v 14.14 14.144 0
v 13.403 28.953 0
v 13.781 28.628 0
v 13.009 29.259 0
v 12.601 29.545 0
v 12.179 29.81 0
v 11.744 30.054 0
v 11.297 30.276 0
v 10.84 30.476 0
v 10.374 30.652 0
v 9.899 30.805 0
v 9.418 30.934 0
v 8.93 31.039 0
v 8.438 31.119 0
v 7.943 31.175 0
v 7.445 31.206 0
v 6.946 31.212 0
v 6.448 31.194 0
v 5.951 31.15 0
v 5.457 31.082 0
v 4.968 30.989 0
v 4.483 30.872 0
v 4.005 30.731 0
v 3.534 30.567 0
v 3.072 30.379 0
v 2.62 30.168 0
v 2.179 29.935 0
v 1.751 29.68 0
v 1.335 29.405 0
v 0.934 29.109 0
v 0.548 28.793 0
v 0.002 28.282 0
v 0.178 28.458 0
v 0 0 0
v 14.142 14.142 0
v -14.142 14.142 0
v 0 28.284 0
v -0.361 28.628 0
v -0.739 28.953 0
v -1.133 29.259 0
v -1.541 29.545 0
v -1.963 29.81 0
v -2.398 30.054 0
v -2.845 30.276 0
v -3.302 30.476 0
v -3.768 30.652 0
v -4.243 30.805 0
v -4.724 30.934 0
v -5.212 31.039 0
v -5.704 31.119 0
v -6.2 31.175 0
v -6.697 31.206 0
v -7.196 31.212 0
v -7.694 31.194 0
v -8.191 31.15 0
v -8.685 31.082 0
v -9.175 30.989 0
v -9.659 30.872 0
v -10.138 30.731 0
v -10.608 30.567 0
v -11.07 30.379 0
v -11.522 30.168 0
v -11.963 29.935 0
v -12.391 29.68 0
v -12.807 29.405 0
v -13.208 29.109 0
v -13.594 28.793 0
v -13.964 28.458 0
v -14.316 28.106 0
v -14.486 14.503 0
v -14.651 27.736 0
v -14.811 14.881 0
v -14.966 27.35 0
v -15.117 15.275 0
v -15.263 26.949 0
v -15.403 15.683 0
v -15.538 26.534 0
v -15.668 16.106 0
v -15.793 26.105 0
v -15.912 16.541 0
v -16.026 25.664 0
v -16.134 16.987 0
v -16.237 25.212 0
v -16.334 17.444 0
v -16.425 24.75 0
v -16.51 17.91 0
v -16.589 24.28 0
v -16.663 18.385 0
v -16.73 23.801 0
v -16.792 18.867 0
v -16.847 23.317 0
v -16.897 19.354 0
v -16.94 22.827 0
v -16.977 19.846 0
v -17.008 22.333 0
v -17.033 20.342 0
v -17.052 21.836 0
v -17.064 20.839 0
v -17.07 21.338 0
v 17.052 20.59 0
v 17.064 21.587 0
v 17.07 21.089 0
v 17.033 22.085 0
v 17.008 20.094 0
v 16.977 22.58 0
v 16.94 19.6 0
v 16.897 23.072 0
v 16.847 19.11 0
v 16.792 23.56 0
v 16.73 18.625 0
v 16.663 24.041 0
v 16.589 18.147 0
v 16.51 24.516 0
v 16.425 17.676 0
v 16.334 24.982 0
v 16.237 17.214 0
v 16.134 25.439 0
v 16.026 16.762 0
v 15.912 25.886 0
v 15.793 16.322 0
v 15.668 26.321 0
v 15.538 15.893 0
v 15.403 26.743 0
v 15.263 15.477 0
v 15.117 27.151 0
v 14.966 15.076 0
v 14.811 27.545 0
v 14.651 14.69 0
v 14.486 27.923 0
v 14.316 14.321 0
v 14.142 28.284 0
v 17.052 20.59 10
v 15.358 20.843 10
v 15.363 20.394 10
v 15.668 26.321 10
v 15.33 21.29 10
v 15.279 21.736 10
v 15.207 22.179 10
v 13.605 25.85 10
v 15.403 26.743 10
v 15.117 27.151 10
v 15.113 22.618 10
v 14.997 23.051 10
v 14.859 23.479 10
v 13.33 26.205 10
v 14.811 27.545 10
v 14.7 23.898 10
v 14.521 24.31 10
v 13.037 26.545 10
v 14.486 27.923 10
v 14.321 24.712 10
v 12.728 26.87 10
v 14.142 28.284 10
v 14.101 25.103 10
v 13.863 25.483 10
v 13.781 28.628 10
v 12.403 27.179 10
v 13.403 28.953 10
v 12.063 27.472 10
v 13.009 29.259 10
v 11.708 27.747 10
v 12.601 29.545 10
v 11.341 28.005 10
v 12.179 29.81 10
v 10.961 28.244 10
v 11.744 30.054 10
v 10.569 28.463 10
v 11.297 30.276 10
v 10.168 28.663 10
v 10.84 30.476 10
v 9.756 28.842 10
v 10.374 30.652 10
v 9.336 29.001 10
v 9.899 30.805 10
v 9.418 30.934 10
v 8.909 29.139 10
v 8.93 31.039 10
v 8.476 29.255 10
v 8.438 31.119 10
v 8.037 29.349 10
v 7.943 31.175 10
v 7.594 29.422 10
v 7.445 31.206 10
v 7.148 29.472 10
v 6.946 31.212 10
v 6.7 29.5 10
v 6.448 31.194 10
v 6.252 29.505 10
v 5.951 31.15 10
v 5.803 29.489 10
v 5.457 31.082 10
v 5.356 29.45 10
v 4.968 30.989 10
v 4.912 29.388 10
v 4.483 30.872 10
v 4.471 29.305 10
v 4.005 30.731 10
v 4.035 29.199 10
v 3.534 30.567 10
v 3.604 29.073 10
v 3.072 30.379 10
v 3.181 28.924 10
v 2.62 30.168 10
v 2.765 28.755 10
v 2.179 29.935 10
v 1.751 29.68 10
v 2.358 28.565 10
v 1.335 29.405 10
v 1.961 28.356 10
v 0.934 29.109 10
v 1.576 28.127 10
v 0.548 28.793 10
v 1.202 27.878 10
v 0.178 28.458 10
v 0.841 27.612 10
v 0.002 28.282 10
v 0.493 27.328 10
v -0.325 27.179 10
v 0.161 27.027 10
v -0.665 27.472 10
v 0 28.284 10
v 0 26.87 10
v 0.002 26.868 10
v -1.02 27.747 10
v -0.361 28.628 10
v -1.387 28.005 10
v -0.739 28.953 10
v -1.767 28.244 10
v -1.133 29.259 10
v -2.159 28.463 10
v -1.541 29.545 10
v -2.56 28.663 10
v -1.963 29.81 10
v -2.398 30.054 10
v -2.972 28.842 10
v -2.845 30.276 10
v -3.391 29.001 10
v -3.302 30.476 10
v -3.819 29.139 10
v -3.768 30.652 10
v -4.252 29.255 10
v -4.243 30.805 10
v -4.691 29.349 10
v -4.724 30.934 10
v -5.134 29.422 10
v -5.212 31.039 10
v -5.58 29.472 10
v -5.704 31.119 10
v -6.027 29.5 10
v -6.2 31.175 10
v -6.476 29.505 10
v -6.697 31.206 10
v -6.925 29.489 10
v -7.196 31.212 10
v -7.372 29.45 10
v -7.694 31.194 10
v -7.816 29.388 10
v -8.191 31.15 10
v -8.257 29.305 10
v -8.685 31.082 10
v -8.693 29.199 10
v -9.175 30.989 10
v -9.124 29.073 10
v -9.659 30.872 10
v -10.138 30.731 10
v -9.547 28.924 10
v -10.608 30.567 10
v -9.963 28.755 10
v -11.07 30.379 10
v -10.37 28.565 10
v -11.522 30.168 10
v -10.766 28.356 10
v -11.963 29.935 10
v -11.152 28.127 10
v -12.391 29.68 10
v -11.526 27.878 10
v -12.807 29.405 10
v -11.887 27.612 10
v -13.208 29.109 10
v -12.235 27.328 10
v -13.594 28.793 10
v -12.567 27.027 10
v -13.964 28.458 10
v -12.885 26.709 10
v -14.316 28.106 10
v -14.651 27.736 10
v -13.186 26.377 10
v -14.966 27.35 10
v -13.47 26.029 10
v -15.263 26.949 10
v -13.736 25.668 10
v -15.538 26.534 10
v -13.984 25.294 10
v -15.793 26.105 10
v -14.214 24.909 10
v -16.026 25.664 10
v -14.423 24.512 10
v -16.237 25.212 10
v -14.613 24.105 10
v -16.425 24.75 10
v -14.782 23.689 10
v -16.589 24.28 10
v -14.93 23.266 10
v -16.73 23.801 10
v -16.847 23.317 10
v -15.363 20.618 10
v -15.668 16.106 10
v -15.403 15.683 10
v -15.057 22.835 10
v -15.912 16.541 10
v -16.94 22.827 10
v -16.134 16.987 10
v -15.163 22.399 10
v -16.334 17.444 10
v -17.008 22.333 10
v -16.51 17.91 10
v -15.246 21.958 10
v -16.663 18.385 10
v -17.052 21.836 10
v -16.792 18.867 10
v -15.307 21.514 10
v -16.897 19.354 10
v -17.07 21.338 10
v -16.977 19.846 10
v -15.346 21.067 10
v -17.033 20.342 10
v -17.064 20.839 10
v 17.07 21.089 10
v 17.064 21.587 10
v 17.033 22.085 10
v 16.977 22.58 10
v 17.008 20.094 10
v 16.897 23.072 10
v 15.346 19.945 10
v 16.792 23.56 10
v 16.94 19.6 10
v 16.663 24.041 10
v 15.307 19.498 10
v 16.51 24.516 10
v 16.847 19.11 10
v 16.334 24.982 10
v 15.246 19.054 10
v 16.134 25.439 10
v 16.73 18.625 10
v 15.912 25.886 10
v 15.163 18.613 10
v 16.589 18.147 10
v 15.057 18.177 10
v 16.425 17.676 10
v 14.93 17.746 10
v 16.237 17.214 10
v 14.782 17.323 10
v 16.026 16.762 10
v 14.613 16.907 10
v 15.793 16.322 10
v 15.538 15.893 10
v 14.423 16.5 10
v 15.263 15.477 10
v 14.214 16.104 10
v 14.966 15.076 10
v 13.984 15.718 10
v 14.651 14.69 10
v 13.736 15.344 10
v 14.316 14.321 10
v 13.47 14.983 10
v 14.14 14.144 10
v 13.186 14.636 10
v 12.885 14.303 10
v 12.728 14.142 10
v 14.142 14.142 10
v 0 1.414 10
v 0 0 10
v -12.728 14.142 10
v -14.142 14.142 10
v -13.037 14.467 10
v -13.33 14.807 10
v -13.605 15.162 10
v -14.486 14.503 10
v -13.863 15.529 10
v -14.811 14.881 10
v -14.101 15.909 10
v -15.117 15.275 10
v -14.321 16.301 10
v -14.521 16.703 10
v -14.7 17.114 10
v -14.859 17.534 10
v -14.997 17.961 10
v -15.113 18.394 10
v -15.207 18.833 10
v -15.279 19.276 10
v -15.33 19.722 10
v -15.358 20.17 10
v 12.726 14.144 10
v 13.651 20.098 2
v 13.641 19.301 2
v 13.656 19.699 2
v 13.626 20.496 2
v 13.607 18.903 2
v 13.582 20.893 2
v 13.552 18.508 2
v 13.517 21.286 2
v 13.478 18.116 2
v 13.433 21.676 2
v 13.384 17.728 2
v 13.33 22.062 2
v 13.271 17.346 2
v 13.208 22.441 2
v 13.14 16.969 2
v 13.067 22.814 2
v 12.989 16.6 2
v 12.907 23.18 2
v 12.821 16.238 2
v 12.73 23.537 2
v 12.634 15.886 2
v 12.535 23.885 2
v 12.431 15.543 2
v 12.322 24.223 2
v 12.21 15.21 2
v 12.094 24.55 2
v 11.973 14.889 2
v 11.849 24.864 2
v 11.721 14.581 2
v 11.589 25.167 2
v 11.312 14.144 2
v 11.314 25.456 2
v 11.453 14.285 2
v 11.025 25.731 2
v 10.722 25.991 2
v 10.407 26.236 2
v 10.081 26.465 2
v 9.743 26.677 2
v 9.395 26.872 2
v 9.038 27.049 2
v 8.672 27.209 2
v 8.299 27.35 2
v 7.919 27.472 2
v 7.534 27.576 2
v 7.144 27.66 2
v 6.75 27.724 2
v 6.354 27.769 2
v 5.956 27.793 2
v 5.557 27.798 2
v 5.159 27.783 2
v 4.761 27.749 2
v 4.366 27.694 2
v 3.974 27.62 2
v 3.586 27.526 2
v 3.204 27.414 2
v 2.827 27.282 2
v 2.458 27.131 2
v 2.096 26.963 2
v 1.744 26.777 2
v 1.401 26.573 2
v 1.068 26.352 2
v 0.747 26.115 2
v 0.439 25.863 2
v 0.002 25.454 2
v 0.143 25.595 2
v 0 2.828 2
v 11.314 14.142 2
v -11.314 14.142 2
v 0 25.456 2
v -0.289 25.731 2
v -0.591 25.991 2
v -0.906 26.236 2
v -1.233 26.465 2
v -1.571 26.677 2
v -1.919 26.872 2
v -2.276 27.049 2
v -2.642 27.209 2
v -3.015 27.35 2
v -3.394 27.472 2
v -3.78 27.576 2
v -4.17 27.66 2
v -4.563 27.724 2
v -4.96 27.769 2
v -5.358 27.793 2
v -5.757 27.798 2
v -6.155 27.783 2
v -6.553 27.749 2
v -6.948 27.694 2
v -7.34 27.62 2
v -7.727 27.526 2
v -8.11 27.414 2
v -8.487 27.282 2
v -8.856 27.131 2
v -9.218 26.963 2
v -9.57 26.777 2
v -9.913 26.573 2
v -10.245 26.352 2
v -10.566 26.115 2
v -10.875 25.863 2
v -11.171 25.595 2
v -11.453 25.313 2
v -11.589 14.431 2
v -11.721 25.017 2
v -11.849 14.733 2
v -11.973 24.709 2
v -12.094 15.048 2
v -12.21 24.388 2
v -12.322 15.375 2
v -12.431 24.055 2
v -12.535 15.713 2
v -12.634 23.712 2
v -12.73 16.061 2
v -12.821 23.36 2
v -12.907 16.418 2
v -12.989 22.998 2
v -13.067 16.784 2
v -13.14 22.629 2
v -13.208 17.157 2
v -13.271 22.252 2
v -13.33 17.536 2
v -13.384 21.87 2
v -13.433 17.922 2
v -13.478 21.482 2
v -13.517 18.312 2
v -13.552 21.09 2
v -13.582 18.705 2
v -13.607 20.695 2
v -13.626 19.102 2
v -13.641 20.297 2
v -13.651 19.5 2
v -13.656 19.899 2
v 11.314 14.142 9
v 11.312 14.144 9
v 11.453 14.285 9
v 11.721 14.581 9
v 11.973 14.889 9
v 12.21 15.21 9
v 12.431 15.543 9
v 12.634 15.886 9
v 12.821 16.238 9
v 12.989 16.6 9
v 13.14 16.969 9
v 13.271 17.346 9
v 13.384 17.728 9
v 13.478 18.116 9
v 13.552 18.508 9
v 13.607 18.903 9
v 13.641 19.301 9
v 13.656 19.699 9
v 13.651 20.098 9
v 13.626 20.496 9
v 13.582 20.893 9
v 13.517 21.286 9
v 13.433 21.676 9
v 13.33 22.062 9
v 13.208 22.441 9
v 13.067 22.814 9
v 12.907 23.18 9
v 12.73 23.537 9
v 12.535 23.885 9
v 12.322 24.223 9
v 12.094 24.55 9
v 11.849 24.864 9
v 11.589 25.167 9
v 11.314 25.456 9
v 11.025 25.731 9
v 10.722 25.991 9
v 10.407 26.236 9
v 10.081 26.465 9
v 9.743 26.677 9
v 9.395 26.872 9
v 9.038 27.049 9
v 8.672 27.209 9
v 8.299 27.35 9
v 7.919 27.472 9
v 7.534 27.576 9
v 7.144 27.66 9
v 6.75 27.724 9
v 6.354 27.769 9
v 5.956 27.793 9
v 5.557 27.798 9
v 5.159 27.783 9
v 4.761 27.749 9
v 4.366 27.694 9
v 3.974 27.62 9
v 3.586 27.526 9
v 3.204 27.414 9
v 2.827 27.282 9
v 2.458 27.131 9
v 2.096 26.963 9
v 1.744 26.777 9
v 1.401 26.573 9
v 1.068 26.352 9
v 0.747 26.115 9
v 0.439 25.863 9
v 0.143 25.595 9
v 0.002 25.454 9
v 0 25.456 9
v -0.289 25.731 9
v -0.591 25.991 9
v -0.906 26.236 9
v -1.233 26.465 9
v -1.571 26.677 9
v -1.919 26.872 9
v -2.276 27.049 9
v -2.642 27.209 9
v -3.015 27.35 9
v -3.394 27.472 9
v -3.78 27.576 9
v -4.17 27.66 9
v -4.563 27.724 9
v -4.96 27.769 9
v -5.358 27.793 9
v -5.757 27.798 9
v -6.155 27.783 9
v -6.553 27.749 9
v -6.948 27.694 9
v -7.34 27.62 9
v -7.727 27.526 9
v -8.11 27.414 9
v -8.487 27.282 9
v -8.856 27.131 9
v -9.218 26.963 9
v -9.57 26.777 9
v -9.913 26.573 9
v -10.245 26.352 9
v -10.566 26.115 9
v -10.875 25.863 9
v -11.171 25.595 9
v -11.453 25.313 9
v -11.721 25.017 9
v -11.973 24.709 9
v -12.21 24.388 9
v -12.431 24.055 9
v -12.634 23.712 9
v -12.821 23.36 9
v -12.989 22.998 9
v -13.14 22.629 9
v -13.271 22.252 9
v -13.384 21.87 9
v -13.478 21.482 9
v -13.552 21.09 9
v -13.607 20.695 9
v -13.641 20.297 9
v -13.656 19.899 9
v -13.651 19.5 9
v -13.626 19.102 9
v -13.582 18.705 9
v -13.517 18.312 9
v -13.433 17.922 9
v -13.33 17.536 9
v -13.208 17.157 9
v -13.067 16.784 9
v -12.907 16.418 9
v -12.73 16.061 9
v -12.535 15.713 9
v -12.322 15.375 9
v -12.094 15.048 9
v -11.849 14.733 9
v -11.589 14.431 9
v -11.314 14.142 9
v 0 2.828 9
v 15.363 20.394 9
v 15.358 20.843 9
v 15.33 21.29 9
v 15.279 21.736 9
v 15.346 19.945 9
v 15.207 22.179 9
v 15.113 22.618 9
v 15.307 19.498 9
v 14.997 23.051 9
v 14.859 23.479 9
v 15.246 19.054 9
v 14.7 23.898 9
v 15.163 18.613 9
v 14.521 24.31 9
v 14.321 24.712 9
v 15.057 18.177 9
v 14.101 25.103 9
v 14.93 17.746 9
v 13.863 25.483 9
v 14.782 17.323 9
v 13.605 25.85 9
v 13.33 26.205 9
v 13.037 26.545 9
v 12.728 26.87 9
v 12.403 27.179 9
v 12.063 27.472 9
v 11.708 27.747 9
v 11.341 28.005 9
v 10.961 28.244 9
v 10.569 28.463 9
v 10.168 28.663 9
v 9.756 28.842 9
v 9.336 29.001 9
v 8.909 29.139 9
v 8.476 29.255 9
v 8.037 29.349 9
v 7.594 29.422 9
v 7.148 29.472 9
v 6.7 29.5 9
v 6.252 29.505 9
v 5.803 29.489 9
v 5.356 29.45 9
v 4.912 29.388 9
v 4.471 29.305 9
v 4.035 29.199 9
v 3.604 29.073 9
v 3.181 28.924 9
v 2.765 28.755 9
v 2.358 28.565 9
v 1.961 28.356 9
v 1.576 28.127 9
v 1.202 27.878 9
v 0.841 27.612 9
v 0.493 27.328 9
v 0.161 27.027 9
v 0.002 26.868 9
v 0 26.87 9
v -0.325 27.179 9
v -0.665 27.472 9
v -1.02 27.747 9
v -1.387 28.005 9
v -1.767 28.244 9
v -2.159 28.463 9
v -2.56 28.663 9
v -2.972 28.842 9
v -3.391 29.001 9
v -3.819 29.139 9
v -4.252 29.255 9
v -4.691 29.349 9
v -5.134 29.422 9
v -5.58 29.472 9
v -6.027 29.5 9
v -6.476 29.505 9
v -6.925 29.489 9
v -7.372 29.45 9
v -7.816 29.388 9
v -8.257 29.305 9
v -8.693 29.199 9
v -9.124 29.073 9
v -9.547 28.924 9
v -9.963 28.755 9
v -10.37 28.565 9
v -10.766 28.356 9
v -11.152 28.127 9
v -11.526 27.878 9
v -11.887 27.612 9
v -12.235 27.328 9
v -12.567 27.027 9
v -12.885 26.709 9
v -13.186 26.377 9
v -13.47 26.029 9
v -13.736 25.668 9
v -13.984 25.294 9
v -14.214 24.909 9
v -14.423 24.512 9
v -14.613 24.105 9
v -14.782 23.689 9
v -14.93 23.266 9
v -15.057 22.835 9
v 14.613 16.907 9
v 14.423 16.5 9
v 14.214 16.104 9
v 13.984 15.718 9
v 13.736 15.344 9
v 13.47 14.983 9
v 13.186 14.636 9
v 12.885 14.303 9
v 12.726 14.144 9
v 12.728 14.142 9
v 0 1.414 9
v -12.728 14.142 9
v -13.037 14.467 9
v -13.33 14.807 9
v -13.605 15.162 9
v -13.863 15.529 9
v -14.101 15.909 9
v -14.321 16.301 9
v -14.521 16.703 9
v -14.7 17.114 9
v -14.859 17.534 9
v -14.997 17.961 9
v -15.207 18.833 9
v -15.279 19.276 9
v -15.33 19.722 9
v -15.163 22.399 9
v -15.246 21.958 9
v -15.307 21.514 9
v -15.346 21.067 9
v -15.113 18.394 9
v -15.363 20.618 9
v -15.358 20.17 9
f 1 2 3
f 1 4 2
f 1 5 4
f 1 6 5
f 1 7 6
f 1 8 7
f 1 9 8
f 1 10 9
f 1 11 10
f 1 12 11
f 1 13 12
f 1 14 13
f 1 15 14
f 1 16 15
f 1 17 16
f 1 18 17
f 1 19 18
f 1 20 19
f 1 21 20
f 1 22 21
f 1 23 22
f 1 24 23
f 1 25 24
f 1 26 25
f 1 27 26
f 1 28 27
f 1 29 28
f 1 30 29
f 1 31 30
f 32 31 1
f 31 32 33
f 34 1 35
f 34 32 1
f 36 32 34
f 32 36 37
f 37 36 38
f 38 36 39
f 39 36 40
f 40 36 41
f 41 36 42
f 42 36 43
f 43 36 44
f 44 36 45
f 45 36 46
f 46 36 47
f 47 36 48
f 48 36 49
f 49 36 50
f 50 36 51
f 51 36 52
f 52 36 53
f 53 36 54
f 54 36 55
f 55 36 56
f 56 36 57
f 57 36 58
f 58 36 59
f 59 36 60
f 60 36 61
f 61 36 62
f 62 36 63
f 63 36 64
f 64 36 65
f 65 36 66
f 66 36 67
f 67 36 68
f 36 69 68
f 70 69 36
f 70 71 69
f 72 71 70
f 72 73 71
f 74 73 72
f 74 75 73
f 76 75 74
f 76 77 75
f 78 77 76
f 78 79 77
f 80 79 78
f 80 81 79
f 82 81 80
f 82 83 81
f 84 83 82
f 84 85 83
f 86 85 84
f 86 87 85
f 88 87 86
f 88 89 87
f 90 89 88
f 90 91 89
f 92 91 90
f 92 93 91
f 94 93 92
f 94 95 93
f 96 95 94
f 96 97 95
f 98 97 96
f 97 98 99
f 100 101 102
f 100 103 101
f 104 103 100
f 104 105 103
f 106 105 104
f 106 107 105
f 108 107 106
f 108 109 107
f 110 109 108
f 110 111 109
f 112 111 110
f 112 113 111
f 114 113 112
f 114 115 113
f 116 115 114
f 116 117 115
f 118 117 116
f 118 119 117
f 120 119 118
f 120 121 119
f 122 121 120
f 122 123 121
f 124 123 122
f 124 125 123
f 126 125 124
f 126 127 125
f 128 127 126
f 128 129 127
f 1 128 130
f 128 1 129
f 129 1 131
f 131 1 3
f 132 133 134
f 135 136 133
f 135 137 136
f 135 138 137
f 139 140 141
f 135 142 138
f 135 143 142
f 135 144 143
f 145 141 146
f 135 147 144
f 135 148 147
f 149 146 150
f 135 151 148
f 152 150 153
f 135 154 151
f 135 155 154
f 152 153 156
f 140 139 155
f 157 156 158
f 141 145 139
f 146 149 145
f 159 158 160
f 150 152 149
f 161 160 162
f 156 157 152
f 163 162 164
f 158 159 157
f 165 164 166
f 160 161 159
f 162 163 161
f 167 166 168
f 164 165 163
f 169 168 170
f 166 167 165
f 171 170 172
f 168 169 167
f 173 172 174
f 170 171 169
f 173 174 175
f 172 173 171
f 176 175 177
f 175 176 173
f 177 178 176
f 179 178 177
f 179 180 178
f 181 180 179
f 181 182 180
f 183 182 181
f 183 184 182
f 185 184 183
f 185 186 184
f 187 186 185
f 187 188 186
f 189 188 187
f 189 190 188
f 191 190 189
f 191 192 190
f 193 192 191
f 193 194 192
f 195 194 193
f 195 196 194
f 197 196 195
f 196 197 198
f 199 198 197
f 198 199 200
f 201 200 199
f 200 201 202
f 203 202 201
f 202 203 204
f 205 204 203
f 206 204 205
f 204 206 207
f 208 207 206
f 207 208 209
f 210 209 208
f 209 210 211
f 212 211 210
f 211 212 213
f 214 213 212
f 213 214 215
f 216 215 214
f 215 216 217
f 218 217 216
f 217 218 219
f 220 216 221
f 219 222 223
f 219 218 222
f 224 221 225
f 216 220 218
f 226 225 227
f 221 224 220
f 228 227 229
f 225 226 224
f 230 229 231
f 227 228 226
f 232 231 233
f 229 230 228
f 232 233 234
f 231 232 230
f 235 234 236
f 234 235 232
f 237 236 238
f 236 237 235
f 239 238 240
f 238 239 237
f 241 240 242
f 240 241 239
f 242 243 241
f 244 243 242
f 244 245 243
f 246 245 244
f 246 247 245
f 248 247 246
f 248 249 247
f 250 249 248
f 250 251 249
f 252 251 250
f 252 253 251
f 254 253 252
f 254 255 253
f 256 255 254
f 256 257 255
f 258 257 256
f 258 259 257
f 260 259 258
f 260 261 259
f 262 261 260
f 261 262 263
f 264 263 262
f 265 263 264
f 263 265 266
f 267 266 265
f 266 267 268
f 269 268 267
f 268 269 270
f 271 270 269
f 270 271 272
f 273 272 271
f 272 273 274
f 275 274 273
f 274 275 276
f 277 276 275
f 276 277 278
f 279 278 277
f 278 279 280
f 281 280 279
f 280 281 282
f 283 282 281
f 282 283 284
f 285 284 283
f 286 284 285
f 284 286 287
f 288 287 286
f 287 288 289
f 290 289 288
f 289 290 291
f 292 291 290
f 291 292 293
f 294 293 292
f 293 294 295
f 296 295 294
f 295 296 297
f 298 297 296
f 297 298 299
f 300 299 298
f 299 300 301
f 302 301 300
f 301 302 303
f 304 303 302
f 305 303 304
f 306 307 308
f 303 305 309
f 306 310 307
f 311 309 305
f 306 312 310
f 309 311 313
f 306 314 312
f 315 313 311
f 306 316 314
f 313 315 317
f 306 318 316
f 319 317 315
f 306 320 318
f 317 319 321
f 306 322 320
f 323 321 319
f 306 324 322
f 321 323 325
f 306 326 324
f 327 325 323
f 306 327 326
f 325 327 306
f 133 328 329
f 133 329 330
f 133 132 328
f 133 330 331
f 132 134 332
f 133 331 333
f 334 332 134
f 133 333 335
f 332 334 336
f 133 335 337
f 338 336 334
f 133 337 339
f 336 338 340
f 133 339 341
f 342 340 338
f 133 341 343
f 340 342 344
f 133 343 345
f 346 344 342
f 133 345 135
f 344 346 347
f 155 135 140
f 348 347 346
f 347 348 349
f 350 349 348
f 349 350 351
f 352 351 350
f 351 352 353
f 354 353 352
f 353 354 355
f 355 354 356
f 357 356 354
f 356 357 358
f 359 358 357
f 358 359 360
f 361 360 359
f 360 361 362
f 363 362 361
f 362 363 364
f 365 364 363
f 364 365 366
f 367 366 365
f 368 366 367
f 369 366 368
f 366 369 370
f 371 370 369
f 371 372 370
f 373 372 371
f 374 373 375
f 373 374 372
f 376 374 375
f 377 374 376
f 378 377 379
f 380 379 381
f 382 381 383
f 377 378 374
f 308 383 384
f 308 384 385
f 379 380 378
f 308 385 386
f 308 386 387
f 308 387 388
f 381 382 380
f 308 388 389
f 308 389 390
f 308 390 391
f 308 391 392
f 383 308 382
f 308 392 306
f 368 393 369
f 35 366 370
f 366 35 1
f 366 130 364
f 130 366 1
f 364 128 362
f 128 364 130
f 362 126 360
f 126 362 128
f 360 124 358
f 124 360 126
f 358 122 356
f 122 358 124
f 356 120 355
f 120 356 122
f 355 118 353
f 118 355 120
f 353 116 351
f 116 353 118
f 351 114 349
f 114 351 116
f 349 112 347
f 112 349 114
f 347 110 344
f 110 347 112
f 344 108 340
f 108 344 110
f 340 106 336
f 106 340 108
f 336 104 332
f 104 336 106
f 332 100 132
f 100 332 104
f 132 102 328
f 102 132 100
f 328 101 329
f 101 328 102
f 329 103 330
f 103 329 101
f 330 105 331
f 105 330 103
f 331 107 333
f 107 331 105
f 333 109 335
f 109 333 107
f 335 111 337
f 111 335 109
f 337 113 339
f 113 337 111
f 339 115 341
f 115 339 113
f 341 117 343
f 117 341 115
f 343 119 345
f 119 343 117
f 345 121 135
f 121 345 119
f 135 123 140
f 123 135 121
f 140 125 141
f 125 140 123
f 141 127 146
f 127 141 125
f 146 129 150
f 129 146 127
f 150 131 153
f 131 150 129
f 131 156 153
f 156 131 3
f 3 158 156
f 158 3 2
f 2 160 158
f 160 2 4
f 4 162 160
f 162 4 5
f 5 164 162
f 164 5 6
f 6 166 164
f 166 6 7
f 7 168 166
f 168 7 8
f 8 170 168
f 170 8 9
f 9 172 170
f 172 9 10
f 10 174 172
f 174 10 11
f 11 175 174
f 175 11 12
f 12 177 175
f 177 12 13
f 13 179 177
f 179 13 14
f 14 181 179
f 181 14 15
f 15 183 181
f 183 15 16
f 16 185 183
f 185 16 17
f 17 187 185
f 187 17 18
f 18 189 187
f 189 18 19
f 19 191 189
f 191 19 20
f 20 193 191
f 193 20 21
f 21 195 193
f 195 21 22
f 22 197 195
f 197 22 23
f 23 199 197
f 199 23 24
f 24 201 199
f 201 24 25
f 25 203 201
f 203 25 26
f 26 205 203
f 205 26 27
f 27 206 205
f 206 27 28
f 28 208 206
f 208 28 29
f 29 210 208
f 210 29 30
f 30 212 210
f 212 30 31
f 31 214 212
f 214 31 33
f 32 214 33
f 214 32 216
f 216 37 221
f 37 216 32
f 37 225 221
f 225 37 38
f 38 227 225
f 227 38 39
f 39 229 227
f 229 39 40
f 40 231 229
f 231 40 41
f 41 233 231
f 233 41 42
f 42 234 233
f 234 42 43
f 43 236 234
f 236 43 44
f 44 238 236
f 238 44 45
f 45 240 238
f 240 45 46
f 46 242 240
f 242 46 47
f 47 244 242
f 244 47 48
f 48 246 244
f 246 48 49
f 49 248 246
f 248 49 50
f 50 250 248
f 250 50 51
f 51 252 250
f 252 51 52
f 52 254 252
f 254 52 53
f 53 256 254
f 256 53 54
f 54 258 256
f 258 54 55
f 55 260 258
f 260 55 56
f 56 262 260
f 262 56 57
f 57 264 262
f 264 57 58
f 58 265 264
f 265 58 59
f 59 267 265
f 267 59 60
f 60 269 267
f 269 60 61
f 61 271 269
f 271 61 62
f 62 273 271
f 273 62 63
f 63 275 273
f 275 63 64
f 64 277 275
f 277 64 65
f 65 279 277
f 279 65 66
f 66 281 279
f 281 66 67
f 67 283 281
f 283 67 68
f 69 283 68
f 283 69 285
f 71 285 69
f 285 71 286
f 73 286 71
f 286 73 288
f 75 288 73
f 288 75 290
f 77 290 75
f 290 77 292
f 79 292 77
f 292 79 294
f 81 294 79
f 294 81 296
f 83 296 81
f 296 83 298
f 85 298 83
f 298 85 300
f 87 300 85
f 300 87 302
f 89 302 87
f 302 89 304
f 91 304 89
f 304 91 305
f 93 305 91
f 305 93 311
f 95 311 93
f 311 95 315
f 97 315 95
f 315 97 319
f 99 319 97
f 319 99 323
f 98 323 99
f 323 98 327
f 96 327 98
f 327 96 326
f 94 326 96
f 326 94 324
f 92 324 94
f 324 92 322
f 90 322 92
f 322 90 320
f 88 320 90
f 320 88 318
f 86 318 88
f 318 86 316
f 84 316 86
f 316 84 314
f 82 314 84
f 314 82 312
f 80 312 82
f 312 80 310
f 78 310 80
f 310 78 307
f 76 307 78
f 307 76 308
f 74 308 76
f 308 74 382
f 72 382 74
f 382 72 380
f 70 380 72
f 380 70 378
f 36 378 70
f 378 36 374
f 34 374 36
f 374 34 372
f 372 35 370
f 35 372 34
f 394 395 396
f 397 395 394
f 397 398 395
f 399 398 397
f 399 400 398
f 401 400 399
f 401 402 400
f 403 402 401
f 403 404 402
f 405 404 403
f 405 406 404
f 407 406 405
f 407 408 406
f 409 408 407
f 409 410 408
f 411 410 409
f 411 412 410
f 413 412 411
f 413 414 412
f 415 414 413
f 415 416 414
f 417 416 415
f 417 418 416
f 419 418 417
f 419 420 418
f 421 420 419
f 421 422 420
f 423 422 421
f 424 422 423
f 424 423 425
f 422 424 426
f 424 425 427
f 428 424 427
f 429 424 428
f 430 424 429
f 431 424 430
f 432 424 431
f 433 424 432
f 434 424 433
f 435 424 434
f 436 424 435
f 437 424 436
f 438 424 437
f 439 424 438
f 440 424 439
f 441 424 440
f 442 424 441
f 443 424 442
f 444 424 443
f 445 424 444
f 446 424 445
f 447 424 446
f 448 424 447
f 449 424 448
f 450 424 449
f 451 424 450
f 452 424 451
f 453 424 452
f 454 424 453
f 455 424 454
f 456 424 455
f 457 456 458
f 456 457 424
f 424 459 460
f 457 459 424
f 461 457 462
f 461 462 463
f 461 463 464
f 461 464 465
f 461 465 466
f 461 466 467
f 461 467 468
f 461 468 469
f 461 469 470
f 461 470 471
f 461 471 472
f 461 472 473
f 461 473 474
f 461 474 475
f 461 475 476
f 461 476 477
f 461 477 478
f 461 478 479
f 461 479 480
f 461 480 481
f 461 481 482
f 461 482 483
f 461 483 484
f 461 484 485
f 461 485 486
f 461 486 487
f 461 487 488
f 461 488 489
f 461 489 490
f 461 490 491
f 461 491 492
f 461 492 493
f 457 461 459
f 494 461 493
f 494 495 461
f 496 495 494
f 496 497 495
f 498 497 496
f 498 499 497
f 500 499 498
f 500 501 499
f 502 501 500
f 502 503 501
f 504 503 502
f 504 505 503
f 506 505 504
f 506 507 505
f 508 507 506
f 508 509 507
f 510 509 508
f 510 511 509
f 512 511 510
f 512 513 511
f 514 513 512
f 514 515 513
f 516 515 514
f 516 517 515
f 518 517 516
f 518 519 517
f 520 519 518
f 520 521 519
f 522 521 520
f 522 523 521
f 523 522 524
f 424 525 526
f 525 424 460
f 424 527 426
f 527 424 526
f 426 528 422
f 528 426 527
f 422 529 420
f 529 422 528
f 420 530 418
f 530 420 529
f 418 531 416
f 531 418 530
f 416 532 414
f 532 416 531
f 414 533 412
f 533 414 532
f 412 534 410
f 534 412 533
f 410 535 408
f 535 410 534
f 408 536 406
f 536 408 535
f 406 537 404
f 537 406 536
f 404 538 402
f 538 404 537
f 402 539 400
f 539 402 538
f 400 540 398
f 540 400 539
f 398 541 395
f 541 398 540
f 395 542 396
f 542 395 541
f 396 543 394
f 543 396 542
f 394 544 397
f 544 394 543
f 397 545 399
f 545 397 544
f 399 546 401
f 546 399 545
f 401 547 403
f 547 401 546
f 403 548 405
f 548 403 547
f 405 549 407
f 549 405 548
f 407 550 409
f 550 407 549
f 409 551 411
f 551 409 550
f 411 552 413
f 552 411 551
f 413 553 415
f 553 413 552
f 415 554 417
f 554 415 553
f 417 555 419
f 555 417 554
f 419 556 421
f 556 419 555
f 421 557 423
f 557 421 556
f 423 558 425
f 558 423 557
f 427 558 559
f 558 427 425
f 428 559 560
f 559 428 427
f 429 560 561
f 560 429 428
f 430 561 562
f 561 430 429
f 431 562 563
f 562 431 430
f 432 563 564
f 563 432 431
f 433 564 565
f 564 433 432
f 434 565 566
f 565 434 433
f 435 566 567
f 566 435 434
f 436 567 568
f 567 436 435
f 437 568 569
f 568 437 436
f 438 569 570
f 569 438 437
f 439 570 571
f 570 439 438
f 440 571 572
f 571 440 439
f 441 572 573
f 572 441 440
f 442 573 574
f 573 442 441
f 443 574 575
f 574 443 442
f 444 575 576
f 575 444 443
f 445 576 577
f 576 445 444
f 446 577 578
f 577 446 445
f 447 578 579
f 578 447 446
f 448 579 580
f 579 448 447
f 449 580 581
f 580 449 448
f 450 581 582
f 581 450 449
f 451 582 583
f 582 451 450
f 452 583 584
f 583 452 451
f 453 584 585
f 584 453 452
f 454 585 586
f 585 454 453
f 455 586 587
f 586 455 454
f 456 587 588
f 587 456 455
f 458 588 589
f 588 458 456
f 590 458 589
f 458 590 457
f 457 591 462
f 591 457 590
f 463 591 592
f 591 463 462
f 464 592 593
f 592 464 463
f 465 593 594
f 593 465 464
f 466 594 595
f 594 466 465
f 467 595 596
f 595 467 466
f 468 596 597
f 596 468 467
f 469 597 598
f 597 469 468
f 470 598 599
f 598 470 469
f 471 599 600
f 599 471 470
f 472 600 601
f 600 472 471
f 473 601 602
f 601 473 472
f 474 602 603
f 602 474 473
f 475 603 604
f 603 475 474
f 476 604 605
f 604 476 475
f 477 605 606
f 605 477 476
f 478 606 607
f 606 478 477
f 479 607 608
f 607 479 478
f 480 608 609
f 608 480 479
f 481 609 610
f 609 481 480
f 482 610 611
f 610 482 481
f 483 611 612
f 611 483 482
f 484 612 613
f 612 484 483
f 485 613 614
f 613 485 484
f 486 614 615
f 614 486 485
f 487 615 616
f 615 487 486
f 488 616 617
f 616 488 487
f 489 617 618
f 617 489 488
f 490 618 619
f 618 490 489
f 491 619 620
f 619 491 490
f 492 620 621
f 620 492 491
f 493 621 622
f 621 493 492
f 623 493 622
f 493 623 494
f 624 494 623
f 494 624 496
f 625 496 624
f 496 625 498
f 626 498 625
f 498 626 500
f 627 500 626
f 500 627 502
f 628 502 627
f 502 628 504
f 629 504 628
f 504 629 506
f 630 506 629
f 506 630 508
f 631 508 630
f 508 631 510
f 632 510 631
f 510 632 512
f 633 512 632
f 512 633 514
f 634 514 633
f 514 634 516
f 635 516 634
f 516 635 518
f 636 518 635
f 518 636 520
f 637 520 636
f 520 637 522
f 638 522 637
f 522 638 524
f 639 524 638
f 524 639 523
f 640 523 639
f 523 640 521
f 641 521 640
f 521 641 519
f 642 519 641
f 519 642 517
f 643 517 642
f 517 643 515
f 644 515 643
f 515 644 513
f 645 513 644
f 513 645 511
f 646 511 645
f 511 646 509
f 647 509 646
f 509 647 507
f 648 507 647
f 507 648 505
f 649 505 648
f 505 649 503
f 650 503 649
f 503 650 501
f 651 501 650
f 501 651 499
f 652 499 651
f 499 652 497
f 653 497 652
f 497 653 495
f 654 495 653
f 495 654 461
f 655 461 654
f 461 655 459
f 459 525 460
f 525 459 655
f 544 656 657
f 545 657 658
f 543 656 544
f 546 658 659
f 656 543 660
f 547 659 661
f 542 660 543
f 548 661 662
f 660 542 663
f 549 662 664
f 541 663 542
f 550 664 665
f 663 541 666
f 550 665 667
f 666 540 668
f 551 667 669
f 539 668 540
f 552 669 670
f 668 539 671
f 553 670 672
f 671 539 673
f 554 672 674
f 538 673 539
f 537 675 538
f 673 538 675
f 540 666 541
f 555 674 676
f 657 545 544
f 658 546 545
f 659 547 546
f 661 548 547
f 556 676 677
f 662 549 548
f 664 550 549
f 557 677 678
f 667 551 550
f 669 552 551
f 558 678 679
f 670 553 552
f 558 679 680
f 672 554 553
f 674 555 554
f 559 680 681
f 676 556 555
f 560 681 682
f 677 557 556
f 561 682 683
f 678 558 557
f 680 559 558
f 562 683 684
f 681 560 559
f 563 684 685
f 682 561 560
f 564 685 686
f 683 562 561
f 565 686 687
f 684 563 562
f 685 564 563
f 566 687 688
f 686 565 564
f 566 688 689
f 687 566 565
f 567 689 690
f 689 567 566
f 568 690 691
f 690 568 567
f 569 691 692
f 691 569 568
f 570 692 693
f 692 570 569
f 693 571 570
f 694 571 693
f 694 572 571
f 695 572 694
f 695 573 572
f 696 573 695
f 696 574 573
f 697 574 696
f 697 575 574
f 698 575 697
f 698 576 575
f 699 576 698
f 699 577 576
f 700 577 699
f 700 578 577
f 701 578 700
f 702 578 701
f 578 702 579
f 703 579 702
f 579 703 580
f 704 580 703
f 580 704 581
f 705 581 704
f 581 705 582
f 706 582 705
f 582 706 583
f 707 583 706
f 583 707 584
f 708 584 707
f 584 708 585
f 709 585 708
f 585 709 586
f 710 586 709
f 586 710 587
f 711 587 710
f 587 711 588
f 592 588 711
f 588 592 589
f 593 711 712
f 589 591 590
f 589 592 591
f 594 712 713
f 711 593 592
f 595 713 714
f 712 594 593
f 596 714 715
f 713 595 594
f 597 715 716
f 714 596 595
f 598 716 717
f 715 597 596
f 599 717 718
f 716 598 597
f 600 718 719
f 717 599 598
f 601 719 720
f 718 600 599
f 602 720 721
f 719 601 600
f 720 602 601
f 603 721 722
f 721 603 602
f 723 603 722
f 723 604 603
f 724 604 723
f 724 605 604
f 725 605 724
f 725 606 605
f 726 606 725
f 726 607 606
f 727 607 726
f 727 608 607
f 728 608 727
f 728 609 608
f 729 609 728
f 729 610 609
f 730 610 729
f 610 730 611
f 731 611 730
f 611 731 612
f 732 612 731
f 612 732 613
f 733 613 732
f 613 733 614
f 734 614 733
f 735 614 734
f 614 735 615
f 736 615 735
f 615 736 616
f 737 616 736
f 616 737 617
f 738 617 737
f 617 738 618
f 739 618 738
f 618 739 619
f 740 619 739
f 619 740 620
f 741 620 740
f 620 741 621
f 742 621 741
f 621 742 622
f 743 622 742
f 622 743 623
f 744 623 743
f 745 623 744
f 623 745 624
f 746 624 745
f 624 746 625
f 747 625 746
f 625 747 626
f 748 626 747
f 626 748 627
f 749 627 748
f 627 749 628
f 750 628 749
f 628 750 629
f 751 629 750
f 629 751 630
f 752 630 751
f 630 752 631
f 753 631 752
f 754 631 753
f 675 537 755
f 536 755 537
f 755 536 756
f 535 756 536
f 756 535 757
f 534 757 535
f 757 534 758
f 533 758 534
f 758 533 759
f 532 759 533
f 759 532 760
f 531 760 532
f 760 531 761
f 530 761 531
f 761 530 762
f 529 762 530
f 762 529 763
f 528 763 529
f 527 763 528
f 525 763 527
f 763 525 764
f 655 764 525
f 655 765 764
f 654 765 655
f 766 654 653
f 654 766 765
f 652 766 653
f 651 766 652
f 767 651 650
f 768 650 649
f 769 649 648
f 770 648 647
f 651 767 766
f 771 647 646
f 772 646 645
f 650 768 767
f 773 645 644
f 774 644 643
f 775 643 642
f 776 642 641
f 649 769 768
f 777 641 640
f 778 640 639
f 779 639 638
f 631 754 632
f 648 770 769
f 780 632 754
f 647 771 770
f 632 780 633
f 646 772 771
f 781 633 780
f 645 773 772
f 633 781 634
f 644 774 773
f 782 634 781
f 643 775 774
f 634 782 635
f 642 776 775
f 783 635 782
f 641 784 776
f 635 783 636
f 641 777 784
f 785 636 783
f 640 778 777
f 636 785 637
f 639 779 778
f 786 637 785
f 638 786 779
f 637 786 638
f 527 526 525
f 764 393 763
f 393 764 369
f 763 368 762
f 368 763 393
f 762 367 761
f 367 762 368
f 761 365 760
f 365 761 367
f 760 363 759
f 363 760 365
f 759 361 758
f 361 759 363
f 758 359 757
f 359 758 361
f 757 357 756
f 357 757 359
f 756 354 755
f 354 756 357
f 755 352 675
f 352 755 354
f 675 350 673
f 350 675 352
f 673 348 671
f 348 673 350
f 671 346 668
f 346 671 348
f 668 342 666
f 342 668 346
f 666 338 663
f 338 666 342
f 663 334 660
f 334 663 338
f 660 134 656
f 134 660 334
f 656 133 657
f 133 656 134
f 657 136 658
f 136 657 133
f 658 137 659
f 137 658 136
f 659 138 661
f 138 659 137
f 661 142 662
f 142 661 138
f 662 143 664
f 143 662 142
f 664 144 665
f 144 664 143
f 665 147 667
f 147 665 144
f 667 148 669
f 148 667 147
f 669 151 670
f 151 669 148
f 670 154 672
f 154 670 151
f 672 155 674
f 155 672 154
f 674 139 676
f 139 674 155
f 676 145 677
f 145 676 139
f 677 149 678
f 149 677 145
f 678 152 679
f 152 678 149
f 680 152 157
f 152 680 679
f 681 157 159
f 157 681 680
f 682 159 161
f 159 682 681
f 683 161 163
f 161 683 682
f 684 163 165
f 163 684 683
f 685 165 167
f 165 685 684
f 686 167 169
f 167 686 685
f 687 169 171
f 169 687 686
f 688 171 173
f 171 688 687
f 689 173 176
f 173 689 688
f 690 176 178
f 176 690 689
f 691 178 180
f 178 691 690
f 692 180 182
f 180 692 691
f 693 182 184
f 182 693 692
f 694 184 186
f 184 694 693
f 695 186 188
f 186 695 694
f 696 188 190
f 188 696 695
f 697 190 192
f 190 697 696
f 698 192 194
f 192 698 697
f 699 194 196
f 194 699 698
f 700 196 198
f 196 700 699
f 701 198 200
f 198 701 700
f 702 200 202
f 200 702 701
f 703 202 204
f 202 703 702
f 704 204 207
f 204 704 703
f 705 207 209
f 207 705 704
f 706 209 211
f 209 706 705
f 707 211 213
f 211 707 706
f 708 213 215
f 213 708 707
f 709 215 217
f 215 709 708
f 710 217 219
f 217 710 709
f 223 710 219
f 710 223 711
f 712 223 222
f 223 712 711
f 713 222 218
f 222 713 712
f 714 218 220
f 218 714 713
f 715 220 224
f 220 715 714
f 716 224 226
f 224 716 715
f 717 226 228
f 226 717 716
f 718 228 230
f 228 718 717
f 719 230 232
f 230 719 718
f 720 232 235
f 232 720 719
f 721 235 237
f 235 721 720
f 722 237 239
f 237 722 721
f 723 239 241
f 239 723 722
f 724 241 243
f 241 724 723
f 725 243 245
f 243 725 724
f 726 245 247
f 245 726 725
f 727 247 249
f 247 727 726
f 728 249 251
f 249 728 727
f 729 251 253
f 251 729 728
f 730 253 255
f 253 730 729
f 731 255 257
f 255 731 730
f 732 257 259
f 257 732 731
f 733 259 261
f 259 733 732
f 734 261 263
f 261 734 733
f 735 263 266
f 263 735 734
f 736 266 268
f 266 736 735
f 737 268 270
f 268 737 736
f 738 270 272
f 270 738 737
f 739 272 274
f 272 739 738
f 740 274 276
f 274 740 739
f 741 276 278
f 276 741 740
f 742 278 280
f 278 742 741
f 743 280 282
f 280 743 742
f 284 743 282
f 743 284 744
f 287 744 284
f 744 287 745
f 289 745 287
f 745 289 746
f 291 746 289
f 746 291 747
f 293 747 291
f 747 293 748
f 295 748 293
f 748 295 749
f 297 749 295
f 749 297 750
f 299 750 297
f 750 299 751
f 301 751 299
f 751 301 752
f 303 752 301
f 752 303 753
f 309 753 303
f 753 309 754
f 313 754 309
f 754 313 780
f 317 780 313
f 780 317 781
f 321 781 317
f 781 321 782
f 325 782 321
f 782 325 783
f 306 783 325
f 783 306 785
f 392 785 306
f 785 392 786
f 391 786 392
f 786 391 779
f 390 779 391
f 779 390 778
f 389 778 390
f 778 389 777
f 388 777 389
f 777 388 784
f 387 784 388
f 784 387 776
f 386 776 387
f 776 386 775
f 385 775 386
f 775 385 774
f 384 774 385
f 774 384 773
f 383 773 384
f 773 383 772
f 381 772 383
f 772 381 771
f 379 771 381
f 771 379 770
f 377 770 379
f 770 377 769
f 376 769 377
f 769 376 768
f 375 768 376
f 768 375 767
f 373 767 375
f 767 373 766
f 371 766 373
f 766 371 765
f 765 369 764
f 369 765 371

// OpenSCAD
$fa=1;
$fs=0.5;

function heart_coordinates(t) = [16*pow(sin(t),3), 13*cos(t) - 5*cos(2*t) - 2*cos(3*t) - cos(4*t)];

//function heart_coords2(t) = [(pow(

module heart(h=10) {   
    n=500;
    step=360/n;
    points=[for(t=[0:step:359.999]) heart_coordinates(t) ];
    linear_extrude(height=h)
        polygon(points);
}
module heart_emoji(h=10) {
    linear_extrude(h)
        text("\u2665",size=30);
}

module heart_box() {
    difference() {
        heart();
        #translate([0,0,2])
            scale([0.8,0.8,1])
                heart();
        translate([0,0,9])
            scale([0.9,0.9,1])
                heart();
        
    }
}

module heart_lid() {
    translate([0,0,3])
        rotate([180,0,180])
            difference() {
                union() {
                    translate([0,0,1])
                        heart(h=2);
                    scale([0.9,0.9,1])
                        heart(h=3);
                }
                translate([-9,-1,2])
                    linear_extrude(4)
                        text("Jenny",size=5);
            }
}

//heart();
//heart_box();

//translate([40,0,0])
//    heart_lid();

//heart_emoji();

// a square and two semi-circles
module heart_simple(r=5, h=10) {
    side = r*2;
    rotate([0,0,45])
        linear_extrude(h) 
            union() {
                square(side, center=false);

                translate([side,r,0])
                    circle(r);

                translate([r,side,0])
                    circle(r);
            }
 }
 
 //heart_simple(r=10);
 
 //overriding heart to reuse the previous modules
 //only default values are supported
 //not useful in this case because this one is not centered
 //screw generics
 //module heart() { heart_simple(); }
 //heart_box();


// function translate_y
//side = side of the square
//height is the hypotenuse of the isosceles triangle
//use pythogorean formula
//side_x_side = side*side;
//height = sqrt(side_x_side + side_x_side);
//scaled_height = height*scaling;
//margins = height - scaled_height;
//translate_y = margins/2;
function translate_y(side,scaling) = (sqrt(2*side*side)-sqrt(2*side*side)*scaling)/2;
 
module heart_box_simple(r=10,h=10) {
    side = r*2;
    scaling_inner = 0.8;
    scaling_outer = 0.9;
    translated_y_inner = translate_y(side, scaling_inner);
    translated_y_outer = translate_y(side, scaling_outer);
    z_outer = h-1;
    echo("y outer", translated_y_outer);
    difference() {
       heart_simple(r=r);
       translate([0,translated_y_inner,2])
           scale([scaling_inner,scaling_inner,1])
               heart_simple(r=r);
       translate([0,translated_y_outer,z_outer])
           scale([scaling_outer,scaling_outer,1])
               heart_simple(r=r);
     }
 }
 heart_box_simple();
 
 
